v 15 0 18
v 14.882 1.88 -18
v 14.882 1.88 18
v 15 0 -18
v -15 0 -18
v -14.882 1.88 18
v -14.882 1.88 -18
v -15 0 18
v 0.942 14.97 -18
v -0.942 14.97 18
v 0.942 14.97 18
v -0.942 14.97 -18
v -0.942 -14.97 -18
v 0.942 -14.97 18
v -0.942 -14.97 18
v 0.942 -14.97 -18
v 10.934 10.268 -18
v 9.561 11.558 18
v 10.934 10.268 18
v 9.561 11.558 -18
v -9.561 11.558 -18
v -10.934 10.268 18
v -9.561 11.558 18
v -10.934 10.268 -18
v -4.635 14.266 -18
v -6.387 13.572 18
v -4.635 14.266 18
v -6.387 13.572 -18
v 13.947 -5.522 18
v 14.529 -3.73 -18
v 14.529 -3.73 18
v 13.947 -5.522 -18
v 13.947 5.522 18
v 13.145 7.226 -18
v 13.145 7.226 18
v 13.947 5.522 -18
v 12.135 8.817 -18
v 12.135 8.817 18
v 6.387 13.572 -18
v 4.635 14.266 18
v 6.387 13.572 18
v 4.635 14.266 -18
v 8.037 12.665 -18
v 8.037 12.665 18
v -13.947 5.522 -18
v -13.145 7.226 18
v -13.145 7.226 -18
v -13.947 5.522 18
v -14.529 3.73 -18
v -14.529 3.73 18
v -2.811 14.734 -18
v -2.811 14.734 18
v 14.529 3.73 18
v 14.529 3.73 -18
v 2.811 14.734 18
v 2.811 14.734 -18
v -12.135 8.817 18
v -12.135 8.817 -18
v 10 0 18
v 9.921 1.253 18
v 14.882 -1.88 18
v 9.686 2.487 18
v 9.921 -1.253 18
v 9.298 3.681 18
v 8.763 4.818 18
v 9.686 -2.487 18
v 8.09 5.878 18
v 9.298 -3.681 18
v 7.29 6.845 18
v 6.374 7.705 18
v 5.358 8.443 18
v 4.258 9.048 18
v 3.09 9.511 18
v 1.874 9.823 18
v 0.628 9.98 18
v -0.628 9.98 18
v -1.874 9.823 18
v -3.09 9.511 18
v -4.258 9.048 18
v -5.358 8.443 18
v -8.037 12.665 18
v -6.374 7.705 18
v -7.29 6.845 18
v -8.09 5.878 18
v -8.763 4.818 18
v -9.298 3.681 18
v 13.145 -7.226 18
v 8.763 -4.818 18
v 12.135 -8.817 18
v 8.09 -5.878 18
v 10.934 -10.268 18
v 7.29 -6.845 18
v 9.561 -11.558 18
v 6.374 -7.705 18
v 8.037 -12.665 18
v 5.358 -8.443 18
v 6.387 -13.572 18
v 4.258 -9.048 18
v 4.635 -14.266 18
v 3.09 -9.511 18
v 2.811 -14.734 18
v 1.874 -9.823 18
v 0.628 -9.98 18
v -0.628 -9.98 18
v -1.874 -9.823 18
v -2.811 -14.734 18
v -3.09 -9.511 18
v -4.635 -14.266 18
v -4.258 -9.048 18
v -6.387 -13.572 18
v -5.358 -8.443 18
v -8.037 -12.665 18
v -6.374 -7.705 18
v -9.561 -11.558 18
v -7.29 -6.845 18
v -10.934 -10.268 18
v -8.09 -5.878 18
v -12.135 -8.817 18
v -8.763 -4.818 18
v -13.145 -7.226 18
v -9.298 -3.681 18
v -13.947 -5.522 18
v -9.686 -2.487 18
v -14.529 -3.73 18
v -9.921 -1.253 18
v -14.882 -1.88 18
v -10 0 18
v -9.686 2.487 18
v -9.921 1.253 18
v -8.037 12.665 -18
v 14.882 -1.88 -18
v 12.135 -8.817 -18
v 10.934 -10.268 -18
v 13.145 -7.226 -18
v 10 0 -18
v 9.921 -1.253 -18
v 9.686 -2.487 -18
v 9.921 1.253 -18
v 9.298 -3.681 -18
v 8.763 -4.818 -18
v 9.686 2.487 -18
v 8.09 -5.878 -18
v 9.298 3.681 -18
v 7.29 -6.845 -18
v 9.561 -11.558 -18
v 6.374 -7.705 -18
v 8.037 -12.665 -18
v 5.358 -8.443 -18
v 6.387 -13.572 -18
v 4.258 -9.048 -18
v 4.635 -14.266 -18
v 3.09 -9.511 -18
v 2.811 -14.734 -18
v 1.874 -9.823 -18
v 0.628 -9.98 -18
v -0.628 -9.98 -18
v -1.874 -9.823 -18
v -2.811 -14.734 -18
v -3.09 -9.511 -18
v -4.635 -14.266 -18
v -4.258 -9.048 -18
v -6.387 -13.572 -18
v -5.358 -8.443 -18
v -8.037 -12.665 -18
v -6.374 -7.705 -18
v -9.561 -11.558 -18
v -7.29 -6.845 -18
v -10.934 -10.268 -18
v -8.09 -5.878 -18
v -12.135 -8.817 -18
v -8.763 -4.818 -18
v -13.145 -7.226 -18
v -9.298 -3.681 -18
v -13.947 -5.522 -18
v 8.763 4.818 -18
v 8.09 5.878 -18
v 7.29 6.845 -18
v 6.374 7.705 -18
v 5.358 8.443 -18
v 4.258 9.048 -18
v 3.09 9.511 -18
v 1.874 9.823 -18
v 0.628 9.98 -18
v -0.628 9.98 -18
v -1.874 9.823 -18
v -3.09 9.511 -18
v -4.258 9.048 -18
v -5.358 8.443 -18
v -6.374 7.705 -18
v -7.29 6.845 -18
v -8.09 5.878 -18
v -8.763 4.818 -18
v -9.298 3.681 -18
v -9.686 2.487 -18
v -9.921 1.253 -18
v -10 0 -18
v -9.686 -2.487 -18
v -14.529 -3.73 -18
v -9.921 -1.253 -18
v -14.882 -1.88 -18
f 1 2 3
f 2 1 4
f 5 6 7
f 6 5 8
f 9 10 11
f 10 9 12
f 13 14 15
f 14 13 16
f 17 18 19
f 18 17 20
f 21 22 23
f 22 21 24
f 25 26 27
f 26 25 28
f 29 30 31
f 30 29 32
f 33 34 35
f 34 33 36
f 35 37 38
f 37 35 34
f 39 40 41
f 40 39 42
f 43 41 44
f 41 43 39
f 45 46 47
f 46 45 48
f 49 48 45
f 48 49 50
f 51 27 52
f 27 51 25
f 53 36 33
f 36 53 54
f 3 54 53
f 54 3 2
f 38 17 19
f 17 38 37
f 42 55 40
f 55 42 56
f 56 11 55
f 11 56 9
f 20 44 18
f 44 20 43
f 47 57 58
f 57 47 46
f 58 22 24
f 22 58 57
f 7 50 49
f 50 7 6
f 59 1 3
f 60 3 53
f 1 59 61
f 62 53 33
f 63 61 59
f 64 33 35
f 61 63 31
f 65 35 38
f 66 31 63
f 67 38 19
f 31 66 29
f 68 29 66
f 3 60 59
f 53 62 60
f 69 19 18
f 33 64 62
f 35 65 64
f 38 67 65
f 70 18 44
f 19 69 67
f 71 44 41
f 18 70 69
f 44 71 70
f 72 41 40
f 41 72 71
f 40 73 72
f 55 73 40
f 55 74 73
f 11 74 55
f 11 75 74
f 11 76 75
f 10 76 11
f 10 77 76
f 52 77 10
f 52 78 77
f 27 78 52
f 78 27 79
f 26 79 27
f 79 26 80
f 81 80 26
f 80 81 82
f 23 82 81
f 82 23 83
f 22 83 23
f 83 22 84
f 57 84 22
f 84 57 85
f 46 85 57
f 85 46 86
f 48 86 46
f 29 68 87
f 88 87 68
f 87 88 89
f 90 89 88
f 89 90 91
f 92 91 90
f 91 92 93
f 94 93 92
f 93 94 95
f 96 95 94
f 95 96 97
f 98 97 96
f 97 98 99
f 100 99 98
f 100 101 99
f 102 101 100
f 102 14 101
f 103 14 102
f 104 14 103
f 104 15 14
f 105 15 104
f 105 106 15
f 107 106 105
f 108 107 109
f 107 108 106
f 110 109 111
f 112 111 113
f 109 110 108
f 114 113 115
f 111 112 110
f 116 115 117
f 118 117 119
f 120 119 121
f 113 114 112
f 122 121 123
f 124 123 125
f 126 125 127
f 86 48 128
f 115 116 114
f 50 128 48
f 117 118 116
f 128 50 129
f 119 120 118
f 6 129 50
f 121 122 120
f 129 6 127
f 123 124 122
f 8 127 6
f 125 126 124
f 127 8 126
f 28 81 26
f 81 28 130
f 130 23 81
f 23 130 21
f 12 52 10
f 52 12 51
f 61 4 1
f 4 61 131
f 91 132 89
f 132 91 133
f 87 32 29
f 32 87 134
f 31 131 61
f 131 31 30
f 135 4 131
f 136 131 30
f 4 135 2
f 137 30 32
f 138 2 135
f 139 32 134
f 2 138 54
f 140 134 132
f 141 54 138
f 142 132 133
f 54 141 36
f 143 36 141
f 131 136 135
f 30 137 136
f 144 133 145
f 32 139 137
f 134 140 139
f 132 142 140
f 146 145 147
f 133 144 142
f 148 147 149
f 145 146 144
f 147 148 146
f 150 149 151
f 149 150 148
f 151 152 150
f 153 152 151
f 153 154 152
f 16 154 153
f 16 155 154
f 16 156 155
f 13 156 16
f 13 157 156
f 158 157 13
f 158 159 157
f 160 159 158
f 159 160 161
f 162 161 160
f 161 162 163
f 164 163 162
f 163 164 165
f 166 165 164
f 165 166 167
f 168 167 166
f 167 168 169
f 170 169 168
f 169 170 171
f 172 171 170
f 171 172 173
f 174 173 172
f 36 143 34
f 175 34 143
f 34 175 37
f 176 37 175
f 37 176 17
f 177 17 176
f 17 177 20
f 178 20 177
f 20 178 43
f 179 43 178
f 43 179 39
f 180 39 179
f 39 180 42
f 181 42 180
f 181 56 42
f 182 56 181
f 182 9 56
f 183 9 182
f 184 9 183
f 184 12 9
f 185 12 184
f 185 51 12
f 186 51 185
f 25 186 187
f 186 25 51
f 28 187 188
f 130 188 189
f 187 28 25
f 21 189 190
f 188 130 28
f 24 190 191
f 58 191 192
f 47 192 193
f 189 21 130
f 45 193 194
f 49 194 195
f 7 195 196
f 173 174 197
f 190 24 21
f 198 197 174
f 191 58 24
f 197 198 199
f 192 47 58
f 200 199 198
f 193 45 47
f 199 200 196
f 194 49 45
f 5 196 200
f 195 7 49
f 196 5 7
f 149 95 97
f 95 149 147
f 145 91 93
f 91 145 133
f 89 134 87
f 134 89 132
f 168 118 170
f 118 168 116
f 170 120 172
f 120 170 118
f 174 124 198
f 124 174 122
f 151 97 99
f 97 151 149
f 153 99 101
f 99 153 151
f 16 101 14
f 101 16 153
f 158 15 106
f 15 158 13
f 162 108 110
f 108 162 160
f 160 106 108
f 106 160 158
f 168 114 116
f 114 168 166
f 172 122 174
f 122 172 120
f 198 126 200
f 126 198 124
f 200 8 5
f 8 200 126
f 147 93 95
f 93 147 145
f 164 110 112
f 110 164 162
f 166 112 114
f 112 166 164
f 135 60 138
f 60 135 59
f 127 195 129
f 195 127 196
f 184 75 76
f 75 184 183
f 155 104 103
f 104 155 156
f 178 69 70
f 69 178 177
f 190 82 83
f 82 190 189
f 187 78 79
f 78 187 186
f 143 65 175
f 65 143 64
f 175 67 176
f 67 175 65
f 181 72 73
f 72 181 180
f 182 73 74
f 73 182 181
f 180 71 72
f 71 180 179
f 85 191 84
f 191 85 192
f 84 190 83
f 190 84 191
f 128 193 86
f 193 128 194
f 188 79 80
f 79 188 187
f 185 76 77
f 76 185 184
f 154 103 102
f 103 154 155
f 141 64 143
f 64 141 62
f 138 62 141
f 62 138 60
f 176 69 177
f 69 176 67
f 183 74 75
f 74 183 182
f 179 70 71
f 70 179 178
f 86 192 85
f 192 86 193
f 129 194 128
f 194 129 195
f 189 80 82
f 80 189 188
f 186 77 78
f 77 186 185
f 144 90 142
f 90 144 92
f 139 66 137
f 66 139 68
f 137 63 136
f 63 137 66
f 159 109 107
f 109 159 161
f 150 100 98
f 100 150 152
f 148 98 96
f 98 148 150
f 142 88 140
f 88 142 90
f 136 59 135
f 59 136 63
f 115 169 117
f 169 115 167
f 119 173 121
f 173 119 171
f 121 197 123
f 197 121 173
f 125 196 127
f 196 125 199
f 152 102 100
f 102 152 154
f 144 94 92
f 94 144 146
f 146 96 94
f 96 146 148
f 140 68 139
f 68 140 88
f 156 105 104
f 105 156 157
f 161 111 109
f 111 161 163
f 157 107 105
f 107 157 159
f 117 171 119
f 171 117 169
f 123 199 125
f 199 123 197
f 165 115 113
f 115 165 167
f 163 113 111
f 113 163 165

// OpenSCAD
$fn = 50;


difference() {
	union() {
		translate(v = [0, 0, -18.0000000000]) {
			cylinder(h = 36, r = 15.0000000000);
		}
	}
	union() {
		translate(v = [0, 0, -100.0000000000]) {
			cylinder(h = 200, r = 10);
		}
	}
}
